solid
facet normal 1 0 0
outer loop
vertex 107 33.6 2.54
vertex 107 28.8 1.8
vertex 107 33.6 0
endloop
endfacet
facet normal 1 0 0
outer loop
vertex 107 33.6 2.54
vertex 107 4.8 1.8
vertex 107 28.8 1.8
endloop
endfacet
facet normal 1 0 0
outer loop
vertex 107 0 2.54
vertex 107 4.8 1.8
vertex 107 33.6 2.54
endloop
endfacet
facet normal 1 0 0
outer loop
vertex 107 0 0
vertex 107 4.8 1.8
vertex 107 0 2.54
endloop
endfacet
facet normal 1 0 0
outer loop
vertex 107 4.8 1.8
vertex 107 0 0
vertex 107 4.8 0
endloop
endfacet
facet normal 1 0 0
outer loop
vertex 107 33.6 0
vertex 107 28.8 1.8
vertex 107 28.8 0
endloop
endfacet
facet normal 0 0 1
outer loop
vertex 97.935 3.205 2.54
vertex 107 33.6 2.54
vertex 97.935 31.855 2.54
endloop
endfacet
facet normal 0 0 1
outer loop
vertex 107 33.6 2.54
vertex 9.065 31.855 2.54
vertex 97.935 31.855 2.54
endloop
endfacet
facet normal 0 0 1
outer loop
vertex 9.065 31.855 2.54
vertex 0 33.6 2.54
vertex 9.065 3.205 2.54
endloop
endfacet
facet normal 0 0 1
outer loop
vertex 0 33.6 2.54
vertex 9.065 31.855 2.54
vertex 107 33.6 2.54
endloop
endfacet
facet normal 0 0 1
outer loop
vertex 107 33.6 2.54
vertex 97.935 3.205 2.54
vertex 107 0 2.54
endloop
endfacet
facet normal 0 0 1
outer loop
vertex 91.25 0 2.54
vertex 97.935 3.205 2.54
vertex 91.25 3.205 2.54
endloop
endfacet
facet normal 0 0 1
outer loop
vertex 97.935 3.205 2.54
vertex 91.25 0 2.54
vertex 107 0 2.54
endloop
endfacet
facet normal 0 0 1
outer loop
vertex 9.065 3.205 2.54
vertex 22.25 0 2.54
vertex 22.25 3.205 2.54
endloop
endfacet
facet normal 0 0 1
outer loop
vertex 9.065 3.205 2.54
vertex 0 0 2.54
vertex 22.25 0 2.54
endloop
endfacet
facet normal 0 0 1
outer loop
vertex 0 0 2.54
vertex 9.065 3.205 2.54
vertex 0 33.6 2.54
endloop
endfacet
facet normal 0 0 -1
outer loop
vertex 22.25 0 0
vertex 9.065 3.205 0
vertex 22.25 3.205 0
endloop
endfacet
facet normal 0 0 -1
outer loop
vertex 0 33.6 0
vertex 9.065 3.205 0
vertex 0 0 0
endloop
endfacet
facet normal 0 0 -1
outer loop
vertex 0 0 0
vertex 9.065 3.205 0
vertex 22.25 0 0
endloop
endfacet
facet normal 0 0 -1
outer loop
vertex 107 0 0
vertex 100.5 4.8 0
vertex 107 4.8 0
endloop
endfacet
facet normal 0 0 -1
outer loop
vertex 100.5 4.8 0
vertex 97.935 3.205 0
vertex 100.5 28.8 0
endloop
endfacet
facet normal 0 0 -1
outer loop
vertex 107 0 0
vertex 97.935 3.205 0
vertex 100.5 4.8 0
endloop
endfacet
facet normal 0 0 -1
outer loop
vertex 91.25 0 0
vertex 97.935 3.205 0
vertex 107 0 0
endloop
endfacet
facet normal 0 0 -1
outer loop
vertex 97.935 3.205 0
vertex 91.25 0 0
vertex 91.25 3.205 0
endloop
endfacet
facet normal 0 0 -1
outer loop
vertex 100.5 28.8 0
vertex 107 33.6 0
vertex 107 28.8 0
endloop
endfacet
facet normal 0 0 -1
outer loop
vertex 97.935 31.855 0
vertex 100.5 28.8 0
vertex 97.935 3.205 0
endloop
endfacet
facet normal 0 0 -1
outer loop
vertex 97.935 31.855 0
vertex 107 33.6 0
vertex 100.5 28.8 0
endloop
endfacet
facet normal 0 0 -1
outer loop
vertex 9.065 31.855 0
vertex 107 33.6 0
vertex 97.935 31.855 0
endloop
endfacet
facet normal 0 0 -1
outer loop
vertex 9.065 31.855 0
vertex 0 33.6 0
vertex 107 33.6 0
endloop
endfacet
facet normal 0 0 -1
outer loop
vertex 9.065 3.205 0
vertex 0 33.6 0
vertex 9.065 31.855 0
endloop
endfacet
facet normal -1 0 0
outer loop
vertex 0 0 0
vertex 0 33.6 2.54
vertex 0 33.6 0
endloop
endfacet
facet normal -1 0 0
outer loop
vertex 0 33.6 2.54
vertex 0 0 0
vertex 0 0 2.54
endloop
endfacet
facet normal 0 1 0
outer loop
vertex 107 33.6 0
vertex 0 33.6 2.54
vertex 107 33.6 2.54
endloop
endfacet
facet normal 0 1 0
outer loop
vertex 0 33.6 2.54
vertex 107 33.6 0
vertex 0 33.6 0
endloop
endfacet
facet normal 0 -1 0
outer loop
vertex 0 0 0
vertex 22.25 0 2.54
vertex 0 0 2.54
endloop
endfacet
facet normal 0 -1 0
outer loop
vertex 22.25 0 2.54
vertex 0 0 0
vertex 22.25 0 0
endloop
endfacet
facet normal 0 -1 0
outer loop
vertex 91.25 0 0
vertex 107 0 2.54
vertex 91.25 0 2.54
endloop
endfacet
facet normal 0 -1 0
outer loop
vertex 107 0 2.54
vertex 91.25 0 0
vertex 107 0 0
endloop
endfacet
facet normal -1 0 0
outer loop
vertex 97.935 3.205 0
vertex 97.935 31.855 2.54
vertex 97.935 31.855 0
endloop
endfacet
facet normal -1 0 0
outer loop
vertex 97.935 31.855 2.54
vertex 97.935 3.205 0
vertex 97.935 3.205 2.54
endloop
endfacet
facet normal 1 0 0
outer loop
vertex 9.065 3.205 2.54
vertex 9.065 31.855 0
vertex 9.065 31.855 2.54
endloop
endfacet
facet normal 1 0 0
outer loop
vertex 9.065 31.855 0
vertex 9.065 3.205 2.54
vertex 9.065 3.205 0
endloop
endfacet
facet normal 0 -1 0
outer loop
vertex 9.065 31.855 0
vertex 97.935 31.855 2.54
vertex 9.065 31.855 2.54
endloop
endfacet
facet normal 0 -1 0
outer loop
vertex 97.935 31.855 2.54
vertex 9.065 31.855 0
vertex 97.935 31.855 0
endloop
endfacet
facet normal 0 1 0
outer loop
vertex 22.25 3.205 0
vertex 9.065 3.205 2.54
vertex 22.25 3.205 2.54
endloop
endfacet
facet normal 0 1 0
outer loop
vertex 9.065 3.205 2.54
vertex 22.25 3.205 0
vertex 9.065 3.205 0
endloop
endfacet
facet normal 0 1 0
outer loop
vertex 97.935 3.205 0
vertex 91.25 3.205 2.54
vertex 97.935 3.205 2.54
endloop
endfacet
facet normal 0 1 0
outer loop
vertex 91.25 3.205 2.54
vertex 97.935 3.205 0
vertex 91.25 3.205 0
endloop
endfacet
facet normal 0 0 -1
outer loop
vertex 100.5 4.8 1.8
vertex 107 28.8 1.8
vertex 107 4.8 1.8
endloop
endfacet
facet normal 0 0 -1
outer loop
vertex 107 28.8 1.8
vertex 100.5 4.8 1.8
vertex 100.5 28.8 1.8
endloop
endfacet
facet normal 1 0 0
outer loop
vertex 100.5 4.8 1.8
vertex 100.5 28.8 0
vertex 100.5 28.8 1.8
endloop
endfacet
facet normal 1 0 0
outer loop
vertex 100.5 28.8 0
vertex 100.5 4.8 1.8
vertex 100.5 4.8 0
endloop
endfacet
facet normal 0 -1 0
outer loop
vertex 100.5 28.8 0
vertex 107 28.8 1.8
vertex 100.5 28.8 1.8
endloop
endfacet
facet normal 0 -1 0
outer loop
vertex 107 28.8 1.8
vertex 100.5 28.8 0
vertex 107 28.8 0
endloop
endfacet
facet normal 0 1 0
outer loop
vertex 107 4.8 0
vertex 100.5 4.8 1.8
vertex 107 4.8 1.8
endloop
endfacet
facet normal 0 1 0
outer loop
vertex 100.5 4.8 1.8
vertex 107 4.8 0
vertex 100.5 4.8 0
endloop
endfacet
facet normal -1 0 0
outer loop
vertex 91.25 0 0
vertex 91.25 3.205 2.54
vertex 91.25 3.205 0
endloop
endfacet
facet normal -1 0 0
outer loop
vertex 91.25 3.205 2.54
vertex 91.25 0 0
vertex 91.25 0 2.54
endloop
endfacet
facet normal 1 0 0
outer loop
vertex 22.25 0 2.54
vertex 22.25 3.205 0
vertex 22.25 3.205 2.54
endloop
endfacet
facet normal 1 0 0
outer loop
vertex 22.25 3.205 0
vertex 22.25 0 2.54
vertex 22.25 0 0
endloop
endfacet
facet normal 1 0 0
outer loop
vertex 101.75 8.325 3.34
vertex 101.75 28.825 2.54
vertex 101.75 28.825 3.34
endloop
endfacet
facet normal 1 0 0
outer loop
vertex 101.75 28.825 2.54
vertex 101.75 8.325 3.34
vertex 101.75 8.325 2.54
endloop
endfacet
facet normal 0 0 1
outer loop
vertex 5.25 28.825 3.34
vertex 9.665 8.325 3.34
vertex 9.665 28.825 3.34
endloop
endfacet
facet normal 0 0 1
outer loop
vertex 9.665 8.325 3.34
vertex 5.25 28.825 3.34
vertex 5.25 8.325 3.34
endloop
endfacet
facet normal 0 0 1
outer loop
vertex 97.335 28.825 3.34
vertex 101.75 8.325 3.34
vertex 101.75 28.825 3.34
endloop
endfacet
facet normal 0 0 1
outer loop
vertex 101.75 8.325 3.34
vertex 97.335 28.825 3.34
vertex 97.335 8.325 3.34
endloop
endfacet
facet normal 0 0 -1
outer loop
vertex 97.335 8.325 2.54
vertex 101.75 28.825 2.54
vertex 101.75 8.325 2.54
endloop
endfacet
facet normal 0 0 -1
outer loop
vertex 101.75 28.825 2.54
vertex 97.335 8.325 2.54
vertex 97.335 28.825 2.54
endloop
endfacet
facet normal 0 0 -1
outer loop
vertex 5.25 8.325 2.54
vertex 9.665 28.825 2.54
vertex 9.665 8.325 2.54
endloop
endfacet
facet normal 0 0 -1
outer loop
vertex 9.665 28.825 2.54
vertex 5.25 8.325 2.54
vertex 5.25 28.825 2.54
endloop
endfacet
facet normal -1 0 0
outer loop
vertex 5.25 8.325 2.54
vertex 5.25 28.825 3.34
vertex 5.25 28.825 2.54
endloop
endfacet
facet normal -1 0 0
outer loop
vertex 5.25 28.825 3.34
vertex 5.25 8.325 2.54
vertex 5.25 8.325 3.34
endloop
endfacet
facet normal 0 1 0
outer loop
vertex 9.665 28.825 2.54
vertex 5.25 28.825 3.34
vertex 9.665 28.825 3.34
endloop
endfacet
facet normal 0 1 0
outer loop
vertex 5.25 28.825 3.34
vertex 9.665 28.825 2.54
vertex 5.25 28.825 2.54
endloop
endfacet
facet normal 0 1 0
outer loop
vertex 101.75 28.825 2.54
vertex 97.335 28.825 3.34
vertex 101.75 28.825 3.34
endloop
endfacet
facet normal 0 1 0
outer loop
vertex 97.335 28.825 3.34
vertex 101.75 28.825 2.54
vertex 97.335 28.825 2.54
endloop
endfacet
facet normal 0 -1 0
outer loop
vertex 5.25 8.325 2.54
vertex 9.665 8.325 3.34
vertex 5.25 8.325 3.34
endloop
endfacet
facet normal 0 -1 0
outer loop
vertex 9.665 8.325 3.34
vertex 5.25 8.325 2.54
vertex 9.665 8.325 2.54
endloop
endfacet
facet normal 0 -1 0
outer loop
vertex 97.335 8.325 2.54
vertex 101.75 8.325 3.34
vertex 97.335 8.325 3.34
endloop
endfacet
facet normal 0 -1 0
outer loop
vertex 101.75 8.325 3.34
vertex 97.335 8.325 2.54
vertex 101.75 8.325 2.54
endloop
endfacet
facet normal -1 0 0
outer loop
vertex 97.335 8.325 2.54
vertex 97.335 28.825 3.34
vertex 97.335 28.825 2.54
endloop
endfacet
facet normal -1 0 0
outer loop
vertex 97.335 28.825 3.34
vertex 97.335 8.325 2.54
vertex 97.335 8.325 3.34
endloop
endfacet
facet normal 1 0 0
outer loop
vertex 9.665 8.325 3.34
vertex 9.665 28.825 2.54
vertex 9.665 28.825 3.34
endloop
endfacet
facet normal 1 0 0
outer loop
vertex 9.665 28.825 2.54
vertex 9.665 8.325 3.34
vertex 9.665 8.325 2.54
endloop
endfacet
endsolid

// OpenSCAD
window_width = 97.0;
window_height = 21.0;

display_width = 87.97 + 0.9;
display_height = 27.75 + 0.9;
display_offset = 3.26 - 2.53;

frame_extra = 5.0;
frame_width = window_width + 2 * frame_extra;
frame_height = 33.6;
frame_thickness = 3.54 - 1.00;

cable_width = 60.00 + 2.0;
cable_heigh = 3.55 - 1.98 + 0.5;

window_fitting_thickness = 0.8;

view_width = 77.12 + 0.2;
view_height = 33.55 - 5.31 - 8.86 + 0.2;
view_offset = 8.86 - 5.31;
view_overhang = 0.6;

cable_slot_width = 6.50;
cable_slot_height = 24.0;
cable_slot_thickness = 1.8;

notch_width = 69.00;
notch_height = 22.25;

module base() {
    difference() {
        cube(size = [frame_width, frame_height, frame_thickness]);
        x = (frame_width - display_width) / 2;
        y = (frame_height - display_height) / 2 + display_offset;
        translate([x, y, 0]) {
            cube(size = [display_width, display_height, frame_thickness]);
        }
    }
}

module cable_slot() {
    x = frame_width - cable_slot_width;
    y = (frame_height - cable_slot_height) / 2;
    translate([x, y, 0]) {
        cube(size = [cable_slot_width, cable_slot_height, cable_slot_thickness]);
    }
}

module window_fitting() {
    effective_window_width = window_width - 0.5;
    effective_window_height = window_height - 0.5;
    x = (frame_width - effective_window_width) / 2;
    y = (frame_height - effective_window_height) / 2 + view_offset / 2;
    translate([x, y, frame_thickness]) {
        difference() {
            cube(size = [effective_window_width, effective_window_height, window_fitting_thickness]);
            effective_width = display_width - 2 * view_overhang;
            x = (effective_window_width - effective_width) / 2;
            translate([x, 0, 0]) {
                cube(size = [effective_width, effective_window_height, window_fitting_thickness]);
            }
        }
    }
}

module notch() {
    translate([notch_height, 0, 0]) {
        nocth_height = (frame_height - display_height) / 2 + display_offset;
        cube(size = [notch_width, nocth_height, frame_height]);
    }
}

module mount() {
    union() {
        difference() {
            base();
            cable_slot();
            notch();
        }
        window_fitting();
    }
}

mount();
